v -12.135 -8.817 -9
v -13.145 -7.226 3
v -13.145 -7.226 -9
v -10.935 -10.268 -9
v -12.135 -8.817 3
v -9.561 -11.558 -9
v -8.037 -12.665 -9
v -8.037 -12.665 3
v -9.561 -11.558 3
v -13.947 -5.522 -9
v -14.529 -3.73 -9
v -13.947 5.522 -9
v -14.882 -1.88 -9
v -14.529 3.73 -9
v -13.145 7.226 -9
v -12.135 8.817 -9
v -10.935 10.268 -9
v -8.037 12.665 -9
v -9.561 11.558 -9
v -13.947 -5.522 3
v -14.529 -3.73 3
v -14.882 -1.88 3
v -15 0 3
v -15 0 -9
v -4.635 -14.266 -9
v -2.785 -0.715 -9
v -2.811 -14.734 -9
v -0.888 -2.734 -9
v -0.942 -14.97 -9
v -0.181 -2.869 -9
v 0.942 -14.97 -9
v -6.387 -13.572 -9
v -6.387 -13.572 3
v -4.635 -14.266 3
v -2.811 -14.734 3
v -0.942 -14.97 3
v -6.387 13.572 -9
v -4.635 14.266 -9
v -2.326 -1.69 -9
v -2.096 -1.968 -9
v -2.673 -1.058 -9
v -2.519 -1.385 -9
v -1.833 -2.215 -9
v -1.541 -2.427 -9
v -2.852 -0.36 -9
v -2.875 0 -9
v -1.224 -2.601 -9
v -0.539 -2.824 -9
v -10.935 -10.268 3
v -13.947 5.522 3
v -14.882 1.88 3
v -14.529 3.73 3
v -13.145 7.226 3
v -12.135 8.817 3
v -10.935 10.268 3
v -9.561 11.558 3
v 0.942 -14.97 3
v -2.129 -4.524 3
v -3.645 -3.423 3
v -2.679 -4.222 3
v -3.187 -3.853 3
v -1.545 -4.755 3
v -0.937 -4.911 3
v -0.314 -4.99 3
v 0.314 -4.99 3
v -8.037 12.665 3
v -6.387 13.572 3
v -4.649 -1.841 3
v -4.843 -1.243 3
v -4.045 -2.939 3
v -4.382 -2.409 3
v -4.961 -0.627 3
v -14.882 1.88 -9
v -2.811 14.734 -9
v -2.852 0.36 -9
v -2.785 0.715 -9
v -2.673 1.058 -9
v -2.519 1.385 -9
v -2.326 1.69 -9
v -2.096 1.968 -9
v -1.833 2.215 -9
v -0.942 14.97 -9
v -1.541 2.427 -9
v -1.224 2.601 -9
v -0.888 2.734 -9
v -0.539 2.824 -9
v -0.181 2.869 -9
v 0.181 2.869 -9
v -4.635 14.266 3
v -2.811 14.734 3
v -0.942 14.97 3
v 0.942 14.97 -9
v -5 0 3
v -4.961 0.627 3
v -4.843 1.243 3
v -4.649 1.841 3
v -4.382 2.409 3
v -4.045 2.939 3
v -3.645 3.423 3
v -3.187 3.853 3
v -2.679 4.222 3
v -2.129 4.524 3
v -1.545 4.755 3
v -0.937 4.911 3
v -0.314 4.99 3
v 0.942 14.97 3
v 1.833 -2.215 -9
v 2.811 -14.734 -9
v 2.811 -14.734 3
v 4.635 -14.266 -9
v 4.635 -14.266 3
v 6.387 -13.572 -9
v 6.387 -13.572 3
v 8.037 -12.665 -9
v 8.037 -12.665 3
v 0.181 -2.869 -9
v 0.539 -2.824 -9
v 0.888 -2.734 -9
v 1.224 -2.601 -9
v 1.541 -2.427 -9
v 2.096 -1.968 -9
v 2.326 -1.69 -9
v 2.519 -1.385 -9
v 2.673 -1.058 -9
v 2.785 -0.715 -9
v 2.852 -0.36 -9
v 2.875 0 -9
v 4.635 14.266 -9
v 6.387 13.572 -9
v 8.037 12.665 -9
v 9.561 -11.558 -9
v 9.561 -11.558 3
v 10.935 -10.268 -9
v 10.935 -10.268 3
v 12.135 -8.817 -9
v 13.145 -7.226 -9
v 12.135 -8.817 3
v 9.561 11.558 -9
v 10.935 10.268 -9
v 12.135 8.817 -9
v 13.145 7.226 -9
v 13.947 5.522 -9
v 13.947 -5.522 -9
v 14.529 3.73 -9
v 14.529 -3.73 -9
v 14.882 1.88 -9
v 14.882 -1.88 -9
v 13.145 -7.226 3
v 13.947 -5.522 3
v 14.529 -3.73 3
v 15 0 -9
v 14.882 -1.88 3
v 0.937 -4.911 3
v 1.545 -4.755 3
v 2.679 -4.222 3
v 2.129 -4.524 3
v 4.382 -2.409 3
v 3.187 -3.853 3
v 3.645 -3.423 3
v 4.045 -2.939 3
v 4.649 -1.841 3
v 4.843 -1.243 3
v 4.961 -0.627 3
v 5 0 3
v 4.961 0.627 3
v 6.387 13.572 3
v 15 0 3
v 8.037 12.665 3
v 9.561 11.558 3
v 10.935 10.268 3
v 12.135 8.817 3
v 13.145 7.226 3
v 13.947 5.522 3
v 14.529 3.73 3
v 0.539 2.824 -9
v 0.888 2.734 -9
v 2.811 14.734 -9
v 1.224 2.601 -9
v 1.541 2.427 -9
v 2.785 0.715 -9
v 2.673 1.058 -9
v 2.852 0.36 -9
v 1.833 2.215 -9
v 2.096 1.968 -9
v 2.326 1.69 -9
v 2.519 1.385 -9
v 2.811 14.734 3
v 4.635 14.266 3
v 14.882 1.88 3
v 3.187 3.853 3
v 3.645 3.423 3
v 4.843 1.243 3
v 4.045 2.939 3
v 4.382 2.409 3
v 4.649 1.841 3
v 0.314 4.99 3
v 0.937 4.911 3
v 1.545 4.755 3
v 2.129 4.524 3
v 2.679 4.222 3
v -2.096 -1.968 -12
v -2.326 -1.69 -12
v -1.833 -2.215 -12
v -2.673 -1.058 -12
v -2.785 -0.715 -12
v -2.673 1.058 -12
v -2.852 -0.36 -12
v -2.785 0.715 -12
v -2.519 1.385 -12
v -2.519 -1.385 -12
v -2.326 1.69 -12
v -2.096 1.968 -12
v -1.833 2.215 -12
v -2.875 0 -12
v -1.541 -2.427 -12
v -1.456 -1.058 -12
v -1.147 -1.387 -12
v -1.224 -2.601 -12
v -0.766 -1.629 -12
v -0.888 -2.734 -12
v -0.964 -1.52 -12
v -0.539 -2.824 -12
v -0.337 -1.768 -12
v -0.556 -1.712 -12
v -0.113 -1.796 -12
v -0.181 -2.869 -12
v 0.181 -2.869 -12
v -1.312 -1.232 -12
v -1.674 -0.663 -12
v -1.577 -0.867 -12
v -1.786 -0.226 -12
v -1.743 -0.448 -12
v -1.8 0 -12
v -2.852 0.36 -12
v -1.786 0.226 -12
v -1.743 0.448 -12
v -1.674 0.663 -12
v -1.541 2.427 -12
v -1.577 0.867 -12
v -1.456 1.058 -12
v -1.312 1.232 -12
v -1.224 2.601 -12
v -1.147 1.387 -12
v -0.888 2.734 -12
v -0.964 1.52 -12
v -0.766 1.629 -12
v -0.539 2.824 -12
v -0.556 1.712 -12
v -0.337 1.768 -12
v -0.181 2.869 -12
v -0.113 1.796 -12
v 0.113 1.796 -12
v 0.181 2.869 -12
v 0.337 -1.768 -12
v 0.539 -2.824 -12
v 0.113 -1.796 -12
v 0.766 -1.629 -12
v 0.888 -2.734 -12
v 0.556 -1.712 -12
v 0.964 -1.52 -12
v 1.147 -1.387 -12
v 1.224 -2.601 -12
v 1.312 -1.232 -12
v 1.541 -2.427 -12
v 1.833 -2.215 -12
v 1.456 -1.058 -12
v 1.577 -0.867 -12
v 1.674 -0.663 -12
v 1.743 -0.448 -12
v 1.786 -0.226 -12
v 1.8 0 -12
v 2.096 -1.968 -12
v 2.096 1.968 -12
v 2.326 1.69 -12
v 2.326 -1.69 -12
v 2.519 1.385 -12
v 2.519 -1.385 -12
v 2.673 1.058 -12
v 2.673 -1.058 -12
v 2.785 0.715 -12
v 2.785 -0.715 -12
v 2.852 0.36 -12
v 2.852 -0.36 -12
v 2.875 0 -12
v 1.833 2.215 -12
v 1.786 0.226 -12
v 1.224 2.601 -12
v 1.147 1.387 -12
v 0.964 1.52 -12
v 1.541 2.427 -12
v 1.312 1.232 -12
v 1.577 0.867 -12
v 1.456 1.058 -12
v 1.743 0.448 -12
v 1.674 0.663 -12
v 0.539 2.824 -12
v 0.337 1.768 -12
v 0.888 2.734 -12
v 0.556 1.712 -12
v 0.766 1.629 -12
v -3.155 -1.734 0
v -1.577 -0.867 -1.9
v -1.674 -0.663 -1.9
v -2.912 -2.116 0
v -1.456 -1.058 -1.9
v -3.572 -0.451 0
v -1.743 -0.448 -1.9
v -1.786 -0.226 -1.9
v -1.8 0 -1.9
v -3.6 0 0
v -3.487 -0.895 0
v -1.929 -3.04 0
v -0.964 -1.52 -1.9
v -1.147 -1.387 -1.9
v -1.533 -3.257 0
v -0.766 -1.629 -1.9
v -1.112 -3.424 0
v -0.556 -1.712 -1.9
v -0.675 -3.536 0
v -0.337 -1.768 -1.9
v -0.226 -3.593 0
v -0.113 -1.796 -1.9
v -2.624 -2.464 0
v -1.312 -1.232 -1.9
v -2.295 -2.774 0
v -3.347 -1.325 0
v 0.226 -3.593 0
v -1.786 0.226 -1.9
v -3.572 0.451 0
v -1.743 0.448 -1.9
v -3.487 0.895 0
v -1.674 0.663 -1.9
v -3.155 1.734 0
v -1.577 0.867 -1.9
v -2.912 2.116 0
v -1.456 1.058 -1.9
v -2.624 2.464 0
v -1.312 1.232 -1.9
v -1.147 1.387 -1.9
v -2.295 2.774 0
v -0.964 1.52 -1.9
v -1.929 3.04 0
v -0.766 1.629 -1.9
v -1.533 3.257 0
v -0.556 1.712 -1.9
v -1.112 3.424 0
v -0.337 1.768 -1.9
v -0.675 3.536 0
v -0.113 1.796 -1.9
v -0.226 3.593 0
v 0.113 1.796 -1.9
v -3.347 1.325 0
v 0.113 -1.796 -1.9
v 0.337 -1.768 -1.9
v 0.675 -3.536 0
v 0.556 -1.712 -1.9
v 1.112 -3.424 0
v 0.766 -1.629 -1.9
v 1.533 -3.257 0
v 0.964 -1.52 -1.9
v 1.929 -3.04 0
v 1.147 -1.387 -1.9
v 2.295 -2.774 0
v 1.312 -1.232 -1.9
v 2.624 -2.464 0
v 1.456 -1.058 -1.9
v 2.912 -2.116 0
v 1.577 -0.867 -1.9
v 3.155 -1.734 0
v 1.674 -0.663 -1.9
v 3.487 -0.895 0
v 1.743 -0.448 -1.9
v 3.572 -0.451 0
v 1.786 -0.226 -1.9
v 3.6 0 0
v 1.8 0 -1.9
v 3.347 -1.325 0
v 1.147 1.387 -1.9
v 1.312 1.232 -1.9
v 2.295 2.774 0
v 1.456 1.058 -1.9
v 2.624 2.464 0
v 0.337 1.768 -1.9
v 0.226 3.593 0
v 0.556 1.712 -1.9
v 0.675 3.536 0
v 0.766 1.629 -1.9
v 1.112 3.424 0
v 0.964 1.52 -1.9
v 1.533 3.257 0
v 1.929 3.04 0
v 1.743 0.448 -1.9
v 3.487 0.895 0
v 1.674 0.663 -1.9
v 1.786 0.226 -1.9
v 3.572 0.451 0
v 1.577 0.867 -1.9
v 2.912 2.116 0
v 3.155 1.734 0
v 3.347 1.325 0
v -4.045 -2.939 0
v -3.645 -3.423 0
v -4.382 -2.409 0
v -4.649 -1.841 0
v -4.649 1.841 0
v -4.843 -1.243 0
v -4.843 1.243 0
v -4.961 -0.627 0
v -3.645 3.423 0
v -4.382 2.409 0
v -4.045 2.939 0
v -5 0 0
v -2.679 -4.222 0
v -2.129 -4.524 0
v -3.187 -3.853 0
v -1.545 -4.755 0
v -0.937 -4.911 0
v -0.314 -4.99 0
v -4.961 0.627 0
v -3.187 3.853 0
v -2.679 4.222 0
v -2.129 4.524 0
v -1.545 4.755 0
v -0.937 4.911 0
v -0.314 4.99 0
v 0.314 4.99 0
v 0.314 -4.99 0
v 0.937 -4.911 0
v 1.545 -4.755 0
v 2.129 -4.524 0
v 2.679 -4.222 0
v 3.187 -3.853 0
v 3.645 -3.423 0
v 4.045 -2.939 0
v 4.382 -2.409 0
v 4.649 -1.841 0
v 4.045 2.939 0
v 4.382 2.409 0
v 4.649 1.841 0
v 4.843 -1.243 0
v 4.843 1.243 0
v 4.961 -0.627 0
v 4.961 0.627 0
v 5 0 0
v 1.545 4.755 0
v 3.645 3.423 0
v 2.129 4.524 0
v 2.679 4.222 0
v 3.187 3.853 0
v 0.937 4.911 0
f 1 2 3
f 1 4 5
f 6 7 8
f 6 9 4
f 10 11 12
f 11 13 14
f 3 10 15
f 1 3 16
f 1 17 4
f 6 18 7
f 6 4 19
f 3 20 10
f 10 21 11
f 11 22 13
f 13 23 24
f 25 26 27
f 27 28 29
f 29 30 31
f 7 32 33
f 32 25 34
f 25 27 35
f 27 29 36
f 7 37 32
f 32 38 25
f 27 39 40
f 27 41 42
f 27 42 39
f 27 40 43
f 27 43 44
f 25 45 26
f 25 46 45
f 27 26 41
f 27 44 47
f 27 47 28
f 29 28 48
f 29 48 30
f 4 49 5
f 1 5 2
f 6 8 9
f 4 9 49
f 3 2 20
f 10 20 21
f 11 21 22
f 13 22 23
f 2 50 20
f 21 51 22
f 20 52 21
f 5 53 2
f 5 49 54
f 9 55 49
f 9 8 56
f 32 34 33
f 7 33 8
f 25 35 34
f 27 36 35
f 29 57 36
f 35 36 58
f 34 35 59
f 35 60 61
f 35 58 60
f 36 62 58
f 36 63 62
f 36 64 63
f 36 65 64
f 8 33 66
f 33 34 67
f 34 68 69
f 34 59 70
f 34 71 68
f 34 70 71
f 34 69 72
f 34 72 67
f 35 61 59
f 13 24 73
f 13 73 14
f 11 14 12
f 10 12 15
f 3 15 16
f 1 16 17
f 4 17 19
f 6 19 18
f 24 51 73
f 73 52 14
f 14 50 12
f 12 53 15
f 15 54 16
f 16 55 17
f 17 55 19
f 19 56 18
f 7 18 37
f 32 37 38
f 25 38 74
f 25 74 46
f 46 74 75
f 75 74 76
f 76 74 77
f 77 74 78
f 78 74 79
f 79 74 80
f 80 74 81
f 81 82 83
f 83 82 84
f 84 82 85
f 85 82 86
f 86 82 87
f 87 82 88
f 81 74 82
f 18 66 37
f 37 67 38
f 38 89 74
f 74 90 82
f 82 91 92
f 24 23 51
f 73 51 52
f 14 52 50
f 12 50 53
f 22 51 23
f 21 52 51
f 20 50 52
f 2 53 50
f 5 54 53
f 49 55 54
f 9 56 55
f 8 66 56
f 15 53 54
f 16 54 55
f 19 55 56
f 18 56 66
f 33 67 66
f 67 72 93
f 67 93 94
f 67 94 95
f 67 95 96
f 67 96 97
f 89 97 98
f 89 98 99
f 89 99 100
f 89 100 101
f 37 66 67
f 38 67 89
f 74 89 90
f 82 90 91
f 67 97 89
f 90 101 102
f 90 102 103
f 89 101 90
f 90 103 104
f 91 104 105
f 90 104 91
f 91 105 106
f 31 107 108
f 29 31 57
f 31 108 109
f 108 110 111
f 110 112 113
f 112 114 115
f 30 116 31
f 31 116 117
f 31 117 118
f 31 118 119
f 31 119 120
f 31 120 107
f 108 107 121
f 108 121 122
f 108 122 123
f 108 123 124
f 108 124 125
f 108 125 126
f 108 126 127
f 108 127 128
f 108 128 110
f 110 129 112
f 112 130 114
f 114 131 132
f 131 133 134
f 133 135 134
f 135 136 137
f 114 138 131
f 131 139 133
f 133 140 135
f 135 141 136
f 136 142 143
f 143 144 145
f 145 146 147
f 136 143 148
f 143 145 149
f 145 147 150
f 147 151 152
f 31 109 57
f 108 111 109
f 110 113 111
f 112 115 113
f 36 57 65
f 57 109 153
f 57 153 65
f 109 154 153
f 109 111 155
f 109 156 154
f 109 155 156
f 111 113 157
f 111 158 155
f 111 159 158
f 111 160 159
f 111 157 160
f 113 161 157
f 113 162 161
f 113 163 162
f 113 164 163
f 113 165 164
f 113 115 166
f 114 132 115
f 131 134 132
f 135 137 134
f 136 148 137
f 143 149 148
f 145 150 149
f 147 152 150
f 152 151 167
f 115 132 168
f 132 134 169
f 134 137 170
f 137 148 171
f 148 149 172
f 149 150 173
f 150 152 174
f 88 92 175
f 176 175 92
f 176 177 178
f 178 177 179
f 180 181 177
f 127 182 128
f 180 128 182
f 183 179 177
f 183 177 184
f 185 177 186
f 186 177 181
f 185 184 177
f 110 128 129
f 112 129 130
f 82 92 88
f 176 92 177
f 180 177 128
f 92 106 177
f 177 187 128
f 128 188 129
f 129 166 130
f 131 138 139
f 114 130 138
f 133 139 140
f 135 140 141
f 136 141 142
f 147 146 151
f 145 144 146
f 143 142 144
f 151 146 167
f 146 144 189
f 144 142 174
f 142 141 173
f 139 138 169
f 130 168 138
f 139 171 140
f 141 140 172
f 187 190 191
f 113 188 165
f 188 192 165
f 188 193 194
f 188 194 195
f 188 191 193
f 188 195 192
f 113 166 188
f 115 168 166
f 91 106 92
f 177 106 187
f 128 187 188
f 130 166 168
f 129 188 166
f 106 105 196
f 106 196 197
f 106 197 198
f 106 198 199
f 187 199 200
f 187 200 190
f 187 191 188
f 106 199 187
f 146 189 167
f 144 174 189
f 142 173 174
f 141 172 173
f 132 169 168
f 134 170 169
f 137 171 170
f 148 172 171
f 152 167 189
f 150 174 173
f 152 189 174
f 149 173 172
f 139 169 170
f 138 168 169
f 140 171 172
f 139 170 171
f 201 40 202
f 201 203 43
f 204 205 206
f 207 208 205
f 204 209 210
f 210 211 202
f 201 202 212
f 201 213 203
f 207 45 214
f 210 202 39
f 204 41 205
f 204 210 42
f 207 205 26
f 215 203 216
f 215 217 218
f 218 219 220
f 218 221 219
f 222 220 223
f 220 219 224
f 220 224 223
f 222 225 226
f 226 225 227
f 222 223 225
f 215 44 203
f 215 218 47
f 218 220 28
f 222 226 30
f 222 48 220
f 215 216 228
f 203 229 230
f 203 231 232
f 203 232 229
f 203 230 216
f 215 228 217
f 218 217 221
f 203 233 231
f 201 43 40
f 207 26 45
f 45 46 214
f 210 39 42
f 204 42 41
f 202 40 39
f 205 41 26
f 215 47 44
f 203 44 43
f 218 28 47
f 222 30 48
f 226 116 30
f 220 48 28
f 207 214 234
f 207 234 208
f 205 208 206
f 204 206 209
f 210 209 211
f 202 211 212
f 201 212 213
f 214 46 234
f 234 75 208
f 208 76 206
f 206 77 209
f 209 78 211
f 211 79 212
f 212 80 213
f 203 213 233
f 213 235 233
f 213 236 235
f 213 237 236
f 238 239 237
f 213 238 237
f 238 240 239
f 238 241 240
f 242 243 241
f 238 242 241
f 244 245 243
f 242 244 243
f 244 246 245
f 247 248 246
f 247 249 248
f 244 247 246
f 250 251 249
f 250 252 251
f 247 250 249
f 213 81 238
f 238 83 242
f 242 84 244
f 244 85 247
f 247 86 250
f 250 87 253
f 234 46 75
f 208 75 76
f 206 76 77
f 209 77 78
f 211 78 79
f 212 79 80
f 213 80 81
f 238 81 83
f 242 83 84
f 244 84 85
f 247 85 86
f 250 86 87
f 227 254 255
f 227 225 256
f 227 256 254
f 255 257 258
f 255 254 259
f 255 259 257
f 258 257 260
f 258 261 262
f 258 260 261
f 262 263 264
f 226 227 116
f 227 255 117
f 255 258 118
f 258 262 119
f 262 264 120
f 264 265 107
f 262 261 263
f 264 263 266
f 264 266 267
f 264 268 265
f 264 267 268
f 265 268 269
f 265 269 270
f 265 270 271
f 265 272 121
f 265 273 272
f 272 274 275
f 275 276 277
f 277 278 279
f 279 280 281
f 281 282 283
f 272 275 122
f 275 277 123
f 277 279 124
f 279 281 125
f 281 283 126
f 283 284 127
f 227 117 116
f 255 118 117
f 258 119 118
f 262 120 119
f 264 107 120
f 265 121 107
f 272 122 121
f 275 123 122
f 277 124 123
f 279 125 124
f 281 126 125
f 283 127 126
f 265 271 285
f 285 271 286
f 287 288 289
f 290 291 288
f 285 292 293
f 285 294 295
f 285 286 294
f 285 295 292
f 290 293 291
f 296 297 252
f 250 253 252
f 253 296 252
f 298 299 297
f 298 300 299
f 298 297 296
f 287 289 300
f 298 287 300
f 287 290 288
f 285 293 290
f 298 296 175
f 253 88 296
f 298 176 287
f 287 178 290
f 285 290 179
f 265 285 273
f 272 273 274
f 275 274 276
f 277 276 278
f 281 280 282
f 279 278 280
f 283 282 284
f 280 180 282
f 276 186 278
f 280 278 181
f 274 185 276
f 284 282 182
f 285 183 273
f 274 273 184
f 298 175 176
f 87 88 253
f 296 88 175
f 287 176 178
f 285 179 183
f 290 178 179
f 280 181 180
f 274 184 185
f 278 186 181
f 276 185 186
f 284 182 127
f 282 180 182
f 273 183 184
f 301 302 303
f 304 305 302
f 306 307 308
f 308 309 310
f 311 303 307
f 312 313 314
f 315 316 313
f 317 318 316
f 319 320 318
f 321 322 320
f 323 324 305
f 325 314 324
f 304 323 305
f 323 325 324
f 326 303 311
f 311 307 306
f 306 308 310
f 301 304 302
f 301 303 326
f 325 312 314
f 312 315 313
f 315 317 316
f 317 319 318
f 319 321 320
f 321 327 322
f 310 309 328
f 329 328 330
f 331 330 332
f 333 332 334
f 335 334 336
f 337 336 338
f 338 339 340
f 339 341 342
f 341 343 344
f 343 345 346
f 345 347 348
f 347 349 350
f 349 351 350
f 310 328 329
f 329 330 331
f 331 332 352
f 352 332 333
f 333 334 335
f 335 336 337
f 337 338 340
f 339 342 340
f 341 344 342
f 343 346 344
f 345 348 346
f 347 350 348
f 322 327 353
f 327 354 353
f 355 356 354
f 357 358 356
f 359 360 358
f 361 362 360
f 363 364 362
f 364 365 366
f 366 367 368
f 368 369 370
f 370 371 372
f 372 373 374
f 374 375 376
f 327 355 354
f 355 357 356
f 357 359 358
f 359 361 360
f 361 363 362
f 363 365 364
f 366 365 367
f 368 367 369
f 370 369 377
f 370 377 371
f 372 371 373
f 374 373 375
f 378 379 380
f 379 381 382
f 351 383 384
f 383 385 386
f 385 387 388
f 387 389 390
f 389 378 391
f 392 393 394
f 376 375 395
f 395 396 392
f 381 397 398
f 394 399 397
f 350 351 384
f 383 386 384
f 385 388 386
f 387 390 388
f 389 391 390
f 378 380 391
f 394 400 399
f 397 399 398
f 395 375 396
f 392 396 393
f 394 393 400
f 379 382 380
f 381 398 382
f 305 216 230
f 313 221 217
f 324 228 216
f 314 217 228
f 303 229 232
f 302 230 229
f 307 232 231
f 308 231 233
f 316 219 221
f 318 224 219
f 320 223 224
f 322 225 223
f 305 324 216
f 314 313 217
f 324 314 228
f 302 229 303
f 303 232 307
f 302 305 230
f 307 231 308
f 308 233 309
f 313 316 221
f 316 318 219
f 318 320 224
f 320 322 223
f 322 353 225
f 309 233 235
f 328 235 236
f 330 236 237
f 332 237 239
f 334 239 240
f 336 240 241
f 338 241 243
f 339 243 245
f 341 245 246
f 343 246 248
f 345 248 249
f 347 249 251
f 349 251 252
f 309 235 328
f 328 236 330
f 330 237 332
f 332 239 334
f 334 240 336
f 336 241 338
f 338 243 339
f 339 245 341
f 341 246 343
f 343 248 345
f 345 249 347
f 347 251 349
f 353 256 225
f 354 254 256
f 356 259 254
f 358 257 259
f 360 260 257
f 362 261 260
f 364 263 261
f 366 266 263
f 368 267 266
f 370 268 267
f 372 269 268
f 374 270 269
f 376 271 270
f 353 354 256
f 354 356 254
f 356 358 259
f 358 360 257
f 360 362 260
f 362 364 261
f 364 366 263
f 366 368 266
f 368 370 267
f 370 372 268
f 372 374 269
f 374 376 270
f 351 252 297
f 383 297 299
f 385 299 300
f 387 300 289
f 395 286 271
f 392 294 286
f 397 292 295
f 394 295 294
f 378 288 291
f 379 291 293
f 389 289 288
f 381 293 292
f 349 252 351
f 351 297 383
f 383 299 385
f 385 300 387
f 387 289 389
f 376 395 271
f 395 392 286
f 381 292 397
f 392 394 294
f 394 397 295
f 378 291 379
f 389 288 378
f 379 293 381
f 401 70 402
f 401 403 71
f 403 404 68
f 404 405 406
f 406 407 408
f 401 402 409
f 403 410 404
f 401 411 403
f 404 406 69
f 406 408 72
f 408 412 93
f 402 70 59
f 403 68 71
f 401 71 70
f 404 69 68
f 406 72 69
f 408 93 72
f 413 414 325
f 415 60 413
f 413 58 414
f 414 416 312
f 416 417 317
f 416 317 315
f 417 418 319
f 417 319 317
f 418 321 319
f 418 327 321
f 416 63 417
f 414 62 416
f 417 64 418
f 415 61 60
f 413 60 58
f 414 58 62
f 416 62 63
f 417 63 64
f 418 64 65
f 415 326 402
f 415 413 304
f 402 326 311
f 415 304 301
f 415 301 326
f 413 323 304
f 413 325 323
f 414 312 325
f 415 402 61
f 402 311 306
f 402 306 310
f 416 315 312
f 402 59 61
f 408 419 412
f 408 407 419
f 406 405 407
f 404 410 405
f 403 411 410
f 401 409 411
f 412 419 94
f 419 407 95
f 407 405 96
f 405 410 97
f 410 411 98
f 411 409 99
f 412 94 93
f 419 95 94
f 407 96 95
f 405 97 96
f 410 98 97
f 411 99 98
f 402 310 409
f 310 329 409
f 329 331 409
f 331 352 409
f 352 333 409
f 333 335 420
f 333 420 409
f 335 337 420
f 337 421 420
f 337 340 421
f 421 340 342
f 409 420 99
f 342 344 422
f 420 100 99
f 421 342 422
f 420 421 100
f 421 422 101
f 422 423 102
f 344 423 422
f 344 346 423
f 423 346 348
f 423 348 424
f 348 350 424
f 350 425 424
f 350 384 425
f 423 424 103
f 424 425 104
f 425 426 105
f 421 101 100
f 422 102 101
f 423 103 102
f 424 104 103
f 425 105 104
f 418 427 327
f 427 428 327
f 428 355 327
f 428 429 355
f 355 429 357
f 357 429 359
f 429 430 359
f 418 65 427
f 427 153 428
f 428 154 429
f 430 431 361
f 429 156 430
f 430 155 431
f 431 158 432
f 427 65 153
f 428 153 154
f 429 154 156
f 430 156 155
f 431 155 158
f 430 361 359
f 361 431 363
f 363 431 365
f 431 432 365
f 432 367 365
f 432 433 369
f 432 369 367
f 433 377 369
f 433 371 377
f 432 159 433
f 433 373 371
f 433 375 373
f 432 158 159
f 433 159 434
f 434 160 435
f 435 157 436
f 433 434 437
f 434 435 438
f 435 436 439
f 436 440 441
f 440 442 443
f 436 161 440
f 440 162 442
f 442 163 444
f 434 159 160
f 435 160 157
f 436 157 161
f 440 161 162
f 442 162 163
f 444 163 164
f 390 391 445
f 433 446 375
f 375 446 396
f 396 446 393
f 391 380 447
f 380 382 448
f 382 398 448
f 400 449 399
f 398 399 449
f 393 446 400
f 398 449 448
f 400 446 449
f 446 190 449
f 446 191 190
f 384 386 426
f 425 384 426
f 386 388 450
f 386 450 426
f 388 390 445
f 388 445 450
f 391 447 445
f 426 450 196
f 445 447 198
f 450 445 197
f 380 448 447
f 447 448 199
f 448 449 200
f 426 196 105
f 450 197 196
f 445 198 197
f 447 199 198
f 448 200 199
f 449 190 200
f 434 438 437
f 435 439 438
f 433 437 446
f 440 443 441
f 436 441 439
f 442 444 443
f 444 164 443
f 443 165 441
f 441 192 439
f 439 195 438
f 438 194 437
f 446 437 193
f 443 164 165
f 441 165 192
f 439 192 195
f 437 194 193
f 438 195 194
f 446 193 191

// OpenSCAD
$fn = 50;

difference() {
	union() {
		translate(v = [0, 0, -9.0]) {
			cylinder(h = 12, r = 15.0);
		}
		#translate(v = [0, 0, -12.0]) {
			cylinder(h = 12, r = 2.875);
		}
	}
	union() {
		translate(v = [0, 0, 0]) {
			rotate(a = [0, 0, 0]) {
				difference() {
					union() {
						translate(v = [0, 0, -12.0]) {
							cylinder(h = 12, r = 1.5);
						}
						translate(v = [0, 0, -1.9]) {
							cylinder(h = 1.9, r1 = 1.8, r2 = 3.6);
						}
						translate(v = [0, 0, -12.0]) {
							cylinder(h = 12, r = 1.8);
						}
						translate(v = [0, 0, -12.0]) {
							cylinder(h = 12, r = 1.5);
						}
					}
					union();
				}
			}
		}
		#cylinder(h = 3, r = 5.0);
	}
}
